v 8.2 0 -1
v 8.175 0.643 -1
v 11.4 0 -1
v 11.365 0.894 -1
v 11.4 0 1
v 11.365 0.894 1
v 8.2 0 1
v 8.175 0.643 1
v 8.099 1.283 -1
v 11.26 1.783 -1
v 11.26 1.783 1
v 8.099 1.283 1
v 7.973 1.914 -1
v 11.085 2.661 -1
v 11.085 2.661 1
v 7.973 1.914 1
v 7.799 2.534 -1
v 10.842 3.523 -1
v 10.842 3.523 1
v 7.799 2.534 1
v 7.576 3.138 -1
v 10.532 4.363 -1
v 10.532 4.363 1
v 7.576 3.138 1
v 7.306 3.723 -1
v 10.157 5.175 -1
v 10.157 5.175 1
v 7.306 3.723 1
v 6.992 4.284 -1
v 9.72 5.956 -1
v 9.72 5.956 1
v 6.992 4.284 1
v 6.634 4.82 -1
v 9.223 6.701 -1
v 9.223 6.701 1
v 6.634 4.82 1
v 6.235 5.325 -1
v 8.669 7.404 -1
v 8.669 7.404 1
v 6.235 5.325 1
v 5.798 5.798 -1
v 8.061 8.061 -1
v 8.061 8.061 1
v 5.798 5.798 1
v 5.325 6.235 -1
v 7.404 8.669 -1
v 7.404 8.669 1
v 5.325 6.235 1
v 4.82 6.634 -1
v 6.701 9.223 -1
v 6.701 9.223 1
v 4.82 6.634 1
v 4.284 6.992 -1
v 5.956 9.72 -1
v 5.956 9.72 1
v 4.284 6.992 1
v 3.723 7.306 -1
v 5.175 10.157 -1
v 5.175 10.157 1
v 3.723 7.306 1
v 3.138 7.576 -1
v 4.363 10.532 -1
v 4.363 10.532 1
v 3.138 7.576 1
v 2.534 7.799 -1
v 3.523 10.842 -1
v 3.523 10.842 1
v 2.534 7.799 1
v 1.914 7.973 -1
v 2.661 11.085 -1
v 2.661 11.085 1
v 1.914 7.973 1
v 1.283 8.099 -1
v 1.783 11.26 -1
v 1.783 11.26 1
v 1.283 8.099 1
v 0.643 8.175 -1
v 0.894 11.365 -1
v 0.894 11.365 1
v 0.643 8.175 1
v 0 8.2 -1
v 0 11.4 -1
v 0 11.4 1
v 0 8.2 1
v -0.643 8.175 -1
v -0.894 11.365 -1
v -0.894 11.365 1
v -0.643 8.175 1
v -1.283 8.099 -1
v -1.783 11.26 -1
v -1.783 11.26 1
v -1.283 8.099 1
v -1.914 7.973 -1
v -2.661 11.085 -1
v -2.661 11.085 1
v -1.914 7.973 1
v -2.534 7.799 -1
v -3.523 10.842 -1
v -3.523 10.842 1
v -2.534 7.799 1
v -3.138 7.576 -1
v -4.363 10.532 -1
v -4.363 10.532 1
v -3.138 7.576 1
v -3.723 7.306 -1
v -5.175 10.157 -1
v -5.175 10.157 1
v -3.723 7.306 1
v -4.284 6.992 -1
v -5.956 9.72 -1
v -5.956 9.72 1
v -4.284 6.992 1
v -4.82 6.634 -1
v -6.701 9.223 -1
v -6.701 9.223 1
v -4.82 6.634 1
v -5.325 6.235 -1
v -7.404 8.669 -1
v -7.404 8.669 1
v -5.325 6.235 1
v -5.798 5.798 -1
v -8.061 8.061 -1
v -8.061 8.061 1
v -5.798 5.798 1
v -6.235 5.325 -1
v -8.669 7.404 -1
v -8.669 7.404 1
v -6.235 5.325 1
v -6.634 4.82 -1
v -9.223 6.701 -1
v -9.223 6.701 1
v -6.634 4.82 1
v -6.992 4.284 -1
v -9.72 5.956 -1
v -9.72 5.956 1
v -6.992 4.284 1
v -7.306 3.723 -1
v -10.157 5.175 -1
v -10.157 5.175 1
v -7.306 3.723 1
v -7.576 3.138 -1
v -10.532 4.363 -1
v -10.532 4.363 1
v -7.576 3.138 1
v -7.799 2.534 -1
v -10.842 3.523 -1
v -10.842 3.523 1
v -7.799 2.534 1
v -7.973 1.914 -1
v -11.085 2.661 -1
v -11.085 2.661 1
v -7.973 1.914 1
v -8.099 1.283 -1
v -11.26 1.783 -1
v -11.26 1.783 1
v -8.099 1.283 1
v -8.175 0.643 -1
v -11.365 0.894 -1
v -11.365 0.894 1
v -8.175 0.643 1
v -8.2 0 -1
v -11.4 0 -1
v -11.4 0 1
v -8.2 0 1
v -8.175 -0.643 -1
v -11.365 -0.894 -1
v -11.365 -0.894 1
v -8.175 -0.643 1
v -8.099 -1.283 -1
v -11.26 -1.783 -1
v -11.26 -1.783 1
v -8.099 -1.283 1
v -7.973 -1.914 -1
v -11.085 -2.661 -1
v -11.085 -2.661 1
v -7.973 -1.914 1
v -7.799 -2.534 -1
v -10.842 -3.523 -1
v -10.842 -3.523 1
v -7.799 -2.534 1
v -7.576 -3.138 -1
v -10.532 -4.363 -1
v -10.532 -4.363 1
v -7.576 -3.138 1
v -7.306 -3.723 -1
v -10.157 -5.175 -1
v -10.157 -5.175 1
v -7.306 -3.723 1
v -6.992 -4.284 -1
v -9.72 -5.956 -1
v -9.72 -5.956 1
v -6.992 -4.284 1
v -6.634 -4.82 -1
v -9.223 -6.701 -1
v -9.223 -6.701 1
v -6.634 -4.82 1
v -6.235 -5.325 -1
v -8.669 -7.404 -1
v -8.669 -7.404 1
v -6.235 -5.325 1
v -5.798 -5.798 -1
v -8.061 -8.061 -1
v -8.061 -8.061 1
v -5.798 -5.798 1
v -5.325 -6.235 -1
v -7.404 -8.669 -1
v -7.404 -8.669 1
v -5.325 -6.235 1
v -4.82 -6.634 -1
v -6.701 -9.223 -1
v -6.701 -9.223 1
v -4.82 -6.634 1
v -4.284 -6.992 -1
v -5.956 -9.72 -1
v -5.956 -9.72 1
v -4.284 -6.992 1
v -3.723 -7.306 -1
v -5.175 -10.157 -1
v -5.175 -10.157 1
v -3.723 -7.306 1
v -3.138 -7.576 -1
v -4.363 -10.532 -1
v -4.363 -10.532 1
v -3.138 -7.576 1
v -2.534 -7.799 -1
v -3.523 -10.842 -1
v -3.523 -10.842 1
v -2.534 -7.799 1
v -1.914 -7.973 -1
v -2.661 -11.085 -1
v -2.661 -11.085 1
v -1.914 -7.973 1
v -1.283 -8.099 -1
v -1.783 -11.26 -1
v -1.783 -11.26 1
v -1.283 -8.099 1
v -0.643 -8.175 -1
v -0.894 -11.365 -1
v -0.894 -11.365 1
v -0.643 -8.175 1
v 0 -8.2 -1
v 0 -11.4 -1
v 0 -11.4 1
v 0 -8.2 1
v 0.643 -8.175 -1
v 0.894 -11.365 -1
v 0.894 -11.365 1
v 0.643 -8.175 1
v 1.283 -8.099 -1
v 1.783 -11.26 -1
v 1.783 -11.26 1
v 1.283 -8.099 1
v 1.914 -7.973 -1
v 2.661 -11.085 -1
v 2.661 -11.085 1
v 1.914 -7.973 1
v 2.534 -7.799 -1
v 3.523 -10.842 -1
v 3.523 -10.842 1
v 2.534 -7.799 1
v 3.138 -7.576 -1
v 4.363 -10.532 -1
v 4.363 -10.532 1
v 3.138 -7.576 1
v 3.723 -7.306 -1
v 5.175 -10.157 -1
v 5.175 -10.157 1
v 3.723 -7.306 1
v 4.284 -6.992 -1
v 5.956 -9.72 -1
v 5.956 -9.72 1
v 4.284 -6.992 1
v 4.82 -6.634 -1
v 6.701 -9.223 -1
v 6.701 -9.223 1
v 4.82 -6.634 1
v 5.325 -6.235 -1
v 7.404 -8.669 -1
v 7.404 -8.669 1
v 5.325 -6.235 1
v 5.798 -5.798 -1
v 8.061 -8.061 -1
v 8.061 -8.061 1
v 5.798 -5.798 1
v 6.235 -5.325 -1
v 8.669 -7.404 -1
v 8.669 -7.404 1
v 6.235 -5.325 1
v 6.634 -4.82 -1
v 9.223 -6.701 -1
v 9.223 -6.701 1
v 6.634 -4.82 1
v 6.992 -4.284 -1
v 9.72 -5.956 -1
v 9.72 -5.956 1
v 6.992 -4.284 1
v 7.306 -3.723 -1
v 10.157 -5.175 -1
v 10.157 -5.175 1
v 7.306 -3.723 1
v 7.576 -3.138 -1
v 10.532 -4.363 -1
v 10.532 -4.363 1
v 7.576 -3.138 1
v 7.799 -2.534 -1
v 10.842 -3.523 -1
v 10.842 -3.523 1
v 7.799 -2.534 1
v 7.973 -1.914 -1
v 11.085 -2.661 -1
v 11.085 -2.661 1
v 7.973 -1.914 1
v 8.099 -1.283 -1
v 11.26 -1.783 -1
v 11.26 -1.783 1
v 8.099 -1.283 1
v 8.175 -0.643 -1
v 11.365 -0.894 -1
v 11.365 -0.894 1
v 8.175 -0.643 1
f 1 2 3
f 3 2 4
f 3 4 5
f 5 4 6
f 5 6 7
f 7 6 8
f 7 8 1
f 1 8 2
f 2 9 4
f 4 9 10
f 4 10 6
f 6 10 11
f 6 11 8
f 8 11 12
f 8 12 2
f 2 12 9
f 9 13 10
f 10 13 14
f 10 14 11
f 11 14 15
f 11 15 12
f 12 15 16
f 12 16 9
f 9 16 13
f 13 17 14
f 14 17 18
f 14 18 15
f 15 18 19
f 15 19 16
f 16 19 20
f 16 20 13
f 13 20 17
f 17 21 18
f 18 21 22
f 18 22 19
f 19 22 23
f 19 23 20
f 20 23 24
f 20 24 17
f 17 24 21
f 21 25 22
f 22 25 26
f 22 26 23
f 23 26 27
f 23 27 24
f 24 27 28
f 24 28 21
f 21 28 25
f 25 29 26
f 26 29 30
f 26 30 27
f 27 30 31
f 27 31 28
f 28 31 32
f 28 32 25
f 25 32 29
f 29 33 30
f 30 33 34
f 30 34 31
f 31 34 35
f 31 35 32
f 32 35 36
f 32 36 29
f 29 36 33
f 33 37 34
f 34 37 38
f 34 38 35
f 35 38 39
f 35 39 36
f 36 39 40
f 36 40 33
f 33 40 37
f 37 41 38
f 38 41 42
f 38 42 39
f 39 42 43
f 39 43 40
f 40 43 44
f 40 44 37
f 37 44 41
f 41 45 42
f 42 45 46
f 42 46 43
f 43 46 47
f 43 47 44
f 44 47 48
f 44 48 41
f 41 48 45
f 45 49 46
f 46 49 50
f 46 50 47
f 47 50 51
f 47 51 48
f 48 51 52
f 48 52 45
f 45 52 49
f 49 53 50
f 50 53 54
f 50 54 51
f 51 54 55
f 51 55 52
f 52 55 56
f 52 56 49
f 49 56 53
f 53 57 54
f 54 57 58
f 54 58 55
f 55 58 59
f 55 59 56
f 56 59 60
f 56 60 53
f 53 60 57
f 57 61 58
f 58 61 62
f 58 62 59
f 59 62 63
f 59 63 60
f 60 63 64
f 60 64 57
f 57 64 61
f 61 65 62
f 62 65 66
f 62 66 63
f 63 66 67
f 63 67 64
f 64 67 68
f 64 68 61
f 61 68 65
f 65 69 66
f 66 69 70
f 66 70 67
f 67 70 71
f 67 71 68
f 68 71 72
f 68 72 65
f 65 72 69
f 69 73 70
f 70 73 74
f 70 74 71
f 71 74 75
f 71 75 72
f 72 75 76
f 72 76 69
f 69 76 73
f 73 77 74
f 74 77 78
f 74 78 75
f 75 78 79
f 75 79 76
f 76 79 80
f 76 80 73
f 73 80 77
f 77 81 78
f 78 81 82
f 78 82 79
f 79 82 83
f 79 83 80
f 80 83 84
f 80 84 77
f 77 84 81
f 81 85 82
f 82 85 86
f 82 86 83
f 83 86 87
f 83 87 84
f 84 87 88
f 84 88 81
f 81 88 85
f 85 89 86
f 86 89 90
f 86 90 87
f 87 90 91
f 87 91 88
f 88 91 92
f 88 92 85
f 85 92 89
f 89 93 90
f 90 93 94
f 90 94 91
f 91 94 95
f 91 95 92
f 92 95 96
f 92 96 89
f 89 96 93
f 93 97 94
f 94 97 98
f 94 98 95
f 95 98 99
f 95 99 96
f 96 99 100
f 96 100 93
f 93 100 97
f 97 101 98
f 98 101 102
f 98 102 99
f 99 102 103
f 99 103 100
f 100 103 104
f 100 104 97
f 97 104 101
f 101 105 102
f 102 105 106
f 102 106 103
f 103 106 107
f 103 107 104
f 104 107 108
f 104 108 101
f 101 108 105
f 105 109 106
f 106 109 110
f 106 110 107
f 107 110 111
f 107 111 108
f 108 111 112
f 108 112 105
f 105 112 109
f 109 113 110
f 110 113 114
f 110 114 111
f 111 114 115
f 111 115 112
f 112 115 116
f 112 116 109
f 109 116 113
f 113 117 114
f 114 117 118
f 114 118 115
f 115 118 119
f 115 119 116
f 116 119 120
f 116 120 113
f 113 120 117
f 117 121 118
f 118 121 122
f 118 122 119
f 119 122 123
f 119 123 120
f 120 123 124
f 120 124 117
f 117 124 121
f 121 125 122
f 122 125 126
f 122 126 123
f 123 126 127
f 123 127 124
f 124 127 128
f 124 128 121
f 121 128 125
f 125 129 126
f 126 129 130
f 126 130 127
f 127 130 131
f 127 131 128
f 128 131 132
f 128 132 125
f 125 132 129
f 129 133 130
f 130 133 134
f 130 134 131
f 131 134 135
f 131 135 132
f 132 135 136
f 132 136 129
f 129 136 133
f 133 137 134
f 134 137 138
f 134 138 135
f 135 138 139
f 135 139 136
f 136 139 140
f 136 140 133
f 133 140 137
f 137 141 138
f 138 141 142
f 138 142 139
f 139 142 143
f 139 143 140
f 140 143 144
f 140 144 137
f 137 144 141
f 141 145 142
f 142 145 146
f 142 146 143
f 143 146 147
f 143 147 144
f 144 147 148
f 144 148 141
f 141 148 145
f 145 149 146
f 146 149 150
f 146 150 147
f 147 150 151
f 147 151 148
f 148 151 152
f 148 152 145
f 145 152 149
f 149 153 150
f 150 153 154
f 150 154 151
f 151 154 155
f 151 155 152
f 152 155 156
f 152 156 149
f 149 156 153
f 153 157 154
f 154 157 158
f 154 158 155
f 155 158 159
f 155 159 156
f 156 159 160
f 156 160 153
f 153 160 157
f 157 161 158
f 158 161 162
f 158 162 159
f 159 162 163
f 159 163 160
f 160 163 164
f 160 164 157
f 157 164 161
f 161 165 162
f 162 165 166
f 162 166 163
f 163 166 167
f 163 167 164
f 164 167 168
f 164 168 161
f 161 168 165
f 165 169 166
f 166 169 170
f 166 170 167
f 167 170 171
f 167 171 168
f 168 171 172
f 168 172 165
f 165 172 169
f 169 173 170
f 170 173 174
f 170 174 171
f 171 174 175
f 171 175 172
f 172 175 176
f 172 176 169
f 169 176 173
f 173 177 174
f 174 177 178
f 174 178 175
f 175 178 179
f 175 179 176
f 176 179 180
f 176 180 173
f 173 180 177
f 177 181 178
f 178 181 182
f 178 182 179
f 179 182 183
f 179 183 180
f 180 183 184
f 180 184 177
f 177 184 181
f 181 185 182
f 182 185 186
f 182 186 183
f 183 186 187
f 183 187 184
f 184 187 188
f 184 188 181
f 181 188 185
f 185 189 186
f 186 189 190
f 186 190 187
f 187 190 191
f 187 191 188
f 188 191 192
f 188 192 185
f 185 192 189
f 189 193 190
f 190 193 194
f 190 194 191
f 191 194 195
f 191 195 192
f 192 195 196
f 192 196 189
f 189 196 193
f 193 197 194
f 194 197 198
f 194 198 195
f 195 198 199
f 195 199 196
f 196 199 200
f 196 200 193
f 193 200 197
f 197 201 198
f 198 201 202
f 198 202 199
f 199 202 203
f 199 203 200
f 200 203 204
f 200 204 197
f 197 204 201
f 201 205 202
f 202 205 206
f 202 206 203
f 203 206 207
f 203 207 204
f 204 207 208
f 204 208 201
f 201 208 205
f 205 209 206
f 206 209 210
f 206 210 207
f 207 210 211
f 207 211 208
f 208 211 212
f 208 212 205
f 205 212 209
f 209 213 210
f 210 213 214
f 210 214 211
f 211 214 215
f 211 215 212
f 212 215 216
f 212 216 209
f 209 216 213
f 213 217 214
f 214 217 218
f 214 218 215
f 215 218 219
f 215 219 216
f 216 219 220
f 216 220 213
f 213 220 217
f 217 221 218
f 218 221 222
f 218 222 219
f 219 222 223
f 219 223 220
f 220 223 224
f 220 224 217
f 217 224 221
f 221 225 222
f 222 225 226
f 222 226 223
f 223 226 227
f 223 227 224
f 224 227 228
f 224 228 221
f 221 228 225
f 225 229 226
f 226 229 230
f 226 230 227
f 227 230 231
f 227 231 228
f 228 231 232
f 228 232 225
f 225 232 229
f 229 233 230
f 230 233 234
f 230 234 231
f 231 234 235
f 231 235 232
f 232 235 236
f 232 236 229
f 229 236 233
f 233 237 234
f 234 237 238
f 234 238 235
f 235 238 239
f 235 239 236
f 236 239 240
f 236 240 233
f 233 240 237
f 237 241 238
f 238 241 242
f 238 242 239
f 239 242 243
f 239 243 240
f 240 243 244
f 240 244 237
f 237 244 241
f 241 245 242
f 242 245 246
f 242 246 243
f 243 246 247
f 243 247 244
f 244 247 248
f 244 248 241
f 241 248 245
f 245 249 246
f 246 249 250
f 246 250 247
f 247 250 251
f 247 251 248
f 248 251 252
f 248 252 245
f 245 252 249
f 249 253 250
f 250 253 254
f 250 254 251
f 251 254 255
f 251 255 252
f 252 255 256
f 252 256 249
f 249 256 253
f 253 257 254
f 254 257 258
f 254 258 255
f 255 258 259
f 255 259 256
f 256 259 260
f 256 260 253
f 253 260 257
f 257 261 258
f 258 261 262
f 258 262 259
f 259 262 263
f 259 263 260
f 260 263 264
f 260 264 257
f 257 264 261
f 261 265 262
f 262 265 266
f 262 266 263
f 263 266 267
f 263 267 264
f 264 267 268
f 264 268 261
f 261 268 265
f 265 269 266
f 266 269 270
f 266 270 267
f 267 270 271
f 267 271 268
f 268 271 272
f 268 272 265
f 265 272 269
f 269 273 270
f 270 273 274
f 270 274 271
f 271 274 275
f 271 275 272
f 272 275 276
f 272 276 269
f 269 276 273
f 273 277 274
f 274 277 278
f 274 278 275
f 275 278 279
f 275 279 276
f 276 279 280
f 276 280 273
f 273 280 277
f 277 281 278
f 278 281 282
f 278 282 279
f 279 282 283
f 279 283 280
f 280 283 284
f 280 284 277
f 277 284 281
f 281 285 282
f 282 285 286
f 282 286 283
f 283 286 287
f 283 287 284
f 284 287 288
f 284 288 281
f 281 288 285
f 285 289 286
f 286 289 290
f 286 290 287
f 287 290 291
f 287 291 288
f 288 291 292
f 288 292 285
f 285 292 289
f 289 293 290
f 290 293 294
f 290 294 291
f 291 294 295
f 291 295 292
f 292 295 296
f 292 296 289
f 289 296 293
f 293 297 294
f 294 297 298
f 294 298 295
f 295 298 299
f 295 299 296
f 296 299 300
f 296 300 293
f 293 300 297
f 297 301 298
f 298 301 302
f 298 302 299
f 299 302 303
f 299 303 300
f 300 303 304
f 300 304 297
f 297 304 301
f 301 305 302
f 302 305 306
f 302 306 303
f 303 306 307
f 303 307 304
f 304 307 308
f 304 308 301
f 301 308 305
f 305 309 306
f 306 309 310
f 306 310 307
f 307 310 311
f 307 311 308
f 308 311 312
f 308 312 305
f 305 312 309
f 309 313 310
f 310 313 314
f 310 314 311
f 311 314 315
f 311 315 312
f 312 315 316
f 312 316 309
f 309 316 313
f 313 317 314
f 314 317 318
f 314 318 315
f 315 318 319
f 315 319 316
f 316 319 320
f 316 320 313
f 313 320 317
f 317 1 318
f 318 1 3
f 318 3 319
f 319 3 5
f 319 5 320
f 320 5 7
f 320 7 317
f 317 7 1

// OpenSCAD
/*
Yamper V11 mesh source for yamper_v11_button_washer_optional.stl
Units: millimeters

This source keeps the restored V11 STL geometry as a plain OpenSCAD polyhedron.
It is not a new redesign. It exists so the CAD source, STL, and STEP exports stay together.
*/

module yamper_v11_button_washer_optional() {
    pts = [
        [8.2, 0, -1],
        [8.174722, 0.643365, -1],
        [11.4, 0, -1],
        [11.364858, 0.894434, -1],
        [11.4, 0, 1],
        [11.364858, 0.894434, 1],
        [8.2, 0, 1],
        [8.174722, 0.643365, 1],
        [8.099045, 1.282763, -1],
        [11.259647, 1.783353, -1],
        [11.259647, 1.783353, 1],
        [8.099045, 1.282763, 1],
        [7.973433, 1.914252, -1],
        [11.085017, 2.661277, -1],
        [11.085017, 2.661277, 1],
        [7.973433, 1.914252, 1],
        [7.798664, 2.533939, -1],
        [10.842044, 3.522794, -1],
        [10.842044, 3.522794, 1],
        [7.798664, 2.533939, 1],
        [7.575812, 3.138004, -1],
        [10.532227, 4.362591, -1],
        [10.532227, 4.362591, 1],
        [7.575812, 3.138004, 1],
        [7.306253, 3.722722, -1],
        [10.157475, 5.175492, -1],
        [10.157475, 5.175492, 1],
        [7.306253, 3.722722, 1],
        [6.991649, 4.284488, -1],
        [9.720098, 5.956484, -1],
        [9.720098, 5.956484, 1],
        [6.991649, 4.284488, 1],
        [6.633939, 4.819839, -1],
        [9.222794, 6.700752, -1],
        [9.222794, 6.700752, 1],
        [6.633939, 4.819839, 1],
        [6.235329, 5.325474, -1],
        [8.668628, 7.403708, -1],
        [8.668628, 7.403708, 1],
        [6.235329, 5.325474, 1],
        [5.798275, 5.798275, -1],
        [8.061017, 8.061017, -1],
        [8.061017, 8.061017, 1],
        [5.798275, 5.798275, 1],
        [5.325474, 6.235329, -1],
        [7.403708, 8.668628, -1],
        [7.403708, 8.668628, 1],
        [5.325474, 6.235329, 1],
        [4.819839, 6.633939, -1],
        [6.700752, 9.222794, -1],
        [6.700752, 9.222794, 1],
        [4.819839, 6.633939, 1],
        [4.284488, 6.991649, -1],
        [5.956484, 9.720098, -1],
        [5.956484, 9.720098, 1],
        [4.284488, 6.991649, 1],
        [3.722722, 7.306253, -1],
        [5.175492, 10.157475, -1],
        [5.175492, 10.157475, 1],
        [3.722722, 7.306253, 1],
        [3.138004, 7.575812, -1],
        [4.362591, 10.532227, -1],
        [4.362591, 10.532227, 1],
        [3.138004, 7.575812, 1],
        [2.533939, 7.798664, -1],
        [3.522794, 10.842044, -1],
        [3.522794, 10.842044, 1],
        [2.533939, 7.798664, 1],
        [1.914252, 7.973433, -1],
        [2.661277, 11.085017, -1],
        [2.661277, 11.085017, 1],
        [1.914252, 7.973433, 1],
        [1.282763, 8.099045, -1],
        [1.783353, 11.259647, -1],
        [1.783353, 11.259647, 1],
        [1.282763, 8.099045, 1],
        [0.643365, 8.174722, -1],
        [0.894434, 11.364858, -1],
        [0.894434, 11.364858, 1],
        [0.643365, 8.174722, 1],
        [0, 8.2, -1],
        [0, 11.4, -1],
        [0, 11.4, 1],
        [0, 8.2, 1],
        [-0.643365, 8.174722, -1],
        [-0.894434, 11.364858, -1],
        [-0.894434, 11.364858, 1],
        [-0.643365, 8.174722, 1],
        [-1.282763, 8.099045, -1],
        [-1.783353, 11.259647, -1],
        [-1.783353, 11.259647, 1],
        [-1.282763, 8.099045, 1],
        [-1.914252, 7.973433, -1],
        [-2.661277, 11.085017, -1],
        [-2.661277, 11.085017, 1],
        [-1.914252, 7.973433, 1],
        [-2.533939, 7.798664, -1],
        [-3.522794, 10.842044, -1],
        [-3.522794, 10.842044, 1],
        [-2.533939, 7.798664, 1],
        [-3.138004, 7.575812, -1],
        [-4.362591, 10.532227, -1],
        [-4.362591, 10.532227, 1],
        [-3.138004, 7.575812, 1],
        [-3.722722, 7.306253, -1],
        [-5.175492, 10.157475, -1],
        [-5.175492, 10.157475, 1],
        [-3.722722, 7.306253, 1],
        [-4.284488, 6.991649, -1],
        [-5.956484, 9.720098, -1],
        [-5.956484, 9.720098, 1],
        [-4.284488, 6.991649, 1],
        [-4.819839, 6.633939, -1],
        [-6.700752, 9.222794, -1],
        [-6.700752, 9.222794, 1],
        [-4.819839, 6.633939, 1],
        [-5.325474, 6.235329, -1],
        [-7.403708, 8.668628, -1],
        [-7.403708, 8.668628, 1],
        [-5.325474, 6.235329, 1],
        [-5.798275, 5.798275, -1],
        [-8.061017, 8.061017, -1],
        [-8.061017, 8.061017, 1],
        [-5.798275, 5.798275, 1],
        [-6.235329, 5.325474, -1],
        [-8.668628, 7.403708, -1],
        [-8.668628, 7.403708, 1],
        [-6.235329, 5.325474, 1],
        [-6.633939, 4.819839, -1],
        [-9.222794, 6.700752, -1],
        [-9.222794, 6.700752, 1],
        [-6.633939, 4.819839, 1],
        [-6.991649, 4.284488, -1],
        [-9.720098, 5.956484, -1],
        [-9.720098, 5.956484, 1],
        [-6.991649, 4.284488, 1],
        [-7.306253, 3.722722, -1],
        [-10.157475, 5.175492, -1],
        [-10.157475, 5.175492, 1],
        [-7.306253, 3.722722, 1],
        [-7.575812, 3.138004, -1],
        [-10.532227, 4.362591, -1],
        [-10.532227, 4.362591, 1],
        [-7.575812, 3.138004, 1],
        [-7.798664, 2.533939, -1],
        [-10.842044, 3.522794, -1],
        [-10.842044, 3.522794, 1],
        [-7.798664, 2.533939, 1],
        [-7.973433, 1.914252, -1],
        [-11.085017, 2.661277, -1],
        [-11.085017, 2.661277, 1],
        [-7.973433, 1.914252, 1],
        [-8.099045, 1.282763, -1],
        [-11.259647, 1.783353, -1],
        [-11.259647, 1.783353, 1],
        [-8.099045, 1.282763, 1],
        [-8.174722, 0.643365, -1],
        [-11.364858, 0.894434, -1],
        [-11.364858, 0.894434, 1],
        [-8.174722, 0.643365, 1],
        [-8.2, 0, -1],
        [-11.4, 0, -1],
        [-11.4, 0, 1],
        [-8.2, 0, 1],
        [-8.174722, -0.643365, -1],
        [-11.364858, -0.894434, -1],
        [-11.364858, -0.894434, 1],
        [-8.174722, -0.643365, 1],
        [-8.099045, -1.282763, -1],
        [-11.259647, -1.783353, -1],
        [-11.259647, -1.783353, 1],
        [-8.099045, -1.282763, 1],
        [-7.973433, -1.914252, -1],
        [-11.085017, -2.661277, -1],
        [-11.085017, -2.661277, 1],
        [-7.973433, -1.914252, 1],
        [-7.798664, -2.533939, -1],
        [-10.842044, -3.522794, -1],
        [-10.842044, -3.522794, 1],
        [-7.798664, -2.533939, 1],
        [-7.575812, -3.138004, -1],
        [-10.532227, -4.362591, -1],
        [-10.532227, -4.362591, 1],
        [-7.575812, -3.138004, 1],
        [-7.306253, -3.722722, -1],
        [-10.157475, -5.175492, -1],
        [-10.157475, -5.175492, 1],
        [-7.306253, -3.722722, 1],
        [-6.991649, -4.284488, -1],
        [-9.720098, -5.956484, -1],
        [-9.720098, -5.956484, 1],
        [-6.991649, -4.284488, 1],
        [-6.633939, -4.819839, -1],
        [-9.222794, -6.700752, -1],
        [-9.222794, -6.700752, 1],
        [-6.633939, -4.819839, 1],
        [-6.235329, -5.325474, -1],
        [-8.668628, -7.403708, -1],
        [-8.668628, -7.403708, 1],
        [-6.235329, -5.325474, 1],
        [-5.798275, -5.798275, -1],
        [-8.061017, -8.061017, -1],
        [-8.061017, -8.061017, 1],
        [-5.798275, -5.798275, 1],
        [-5.325474, -6.235329, -1],
        [-7.403708, -8.668628, -1],
        [-7.403708, -8.668628, 1],
        [-5.325474, -6.235329, 1],
        [-4.819839, -6.633939, -1],
        [-6.700752, -9.222794, -1],
        [-6.700752, -9.222794, 1],
        [-4.819839, -6.633939, 1],
        [-4.284488, -6.991649, -1],
        [-5.956484, -9.720098, -1],
        [-5.956484, -9.720098, 1],
        [-4.284488, -6.991649, 1],
        [-3.722722, -7.306253, -1],
        [-5.175492, -10.157475, -1],
        [-5.175492, -10.157475, 1],
        [-3.722722, -7.306253, 1],
        [-3.138004, -7.575812, -1],
        [-4.362591, -10.532227, -1],
        [-4.362591, -10.532227, 1],
        [-3.138004, -7.575812, 1],
        [-2.533939, -7.798664, -1],
        [-3.522794, -10.842044, -1],
        [-3.522794, -10.842044, 1],
        [-2.533939, -7.798664, 1],
        [-1.914252, -7.973433, -1],
        [-2.661277, -11.085017, -1],
        [-2.661277, -11.085017, 1],
        [-1.914252, -7.973433, 1],
        [-1.282763, -8.099045, -1],
        [-1.783353, -11.259647, -1],
        [-1.783353, -11.259647, 1],
        [-1.282763, -8.099045, 1],
        [-0.643365, -8.174722, -1],
        [-0.894434, -11.364858, -1],
        [-0.894434, -11.364858, 1],
        [-0.643365, -8.174722, 1],
        [0, -8.2, -1],
        [0, -11.4, -1],
        [0, -11.4, 1],
        [0, -8.2, 1],
        [0.643365, -8.174722, -1],
        [0.894434, -11.364858, -1],
        [0.894434, -11.364858, 1],
        [0.643365, -8.174722, 1],
        [1.282763, -8.099045, -1],
        [1.783353, -11.259647, -1],
        [1.783353, -11.259647, 1],
        [1.282763, -8.099045, 1],
        [1.914252, -7.973433, -1],
        [2.661277, -11.085017, -1],
        [2.661277, -11.085017, 1],
        [1.914252, -7.973433, 1],
        [2.533939, -7.798664, -1],
        [3.522794, -10.842044, -1],
        [3.522794, -10.842044, 1],
        [2.533939, -7.798664, 1],
        [3.138004, -7.575812, -1],
        [4.362591, -10.532227, -1],
        [4.362591, -10.532227, 1],
        [3.138004, -7.575812, 1],
        [3.722722, -7.306253, -1],
        [5.175492, -10.157475, -1],
        [5.175492, -10.157475, 1],
        [3.722722, -7.306253, 1],
        [4.284488, -6.991649, -1],
        [5.956484, -9.720098, -1],
        [5.956484, -9.720098, 1],
        [4.284488, -6.991649, 1],
        [4.819839, -6.633939, -1],
        [6.700752, -9.222794, -1],
        [6.700752, -9.222794, 1],
        [4.819839, -6.633939, 1],
        [5.325474, -6.235329, -1],
        [7.403708, -8.668628, -1],
        [7.403708, -8.668628, 1],
        [5.325474, -6.235329, 1],
        [5.798275, -5.798275, -1],
        [8.061017, -8.061017, -1],
        [8.061017, -8.061017, 1],
        [5.798275, -5.798275, 1],
        [6.235329, -5.325474, -1],
        [8.668628, -7.403708, -1],
        [8.668628, -7.403708, 1],
        [6.235329, -5.325474, 1],
        [6.633939, -4.819839, -1],
        [9.222794, -6.700752, -1],
        [9.222794, -6.700752, 1],
        [6.633939, -4.819839, 1],
        [6.991649, -4.284488, -1],
        [9.720098, -5.956484, -1],
        [9.720098, -5.956484, 1],
        [6.991649, -4.284488, 1],
        [7.306253, -3.722722, -1],
        [10.157475, -5.175492, -1],
        [10.157475, -5.175492, 1],
        [7.306253, -3.722722, 1],
        [7.575812, -3.138004, -1],
        [10.532227, -4.362591, -1],
        [10.532227, -4.362591, 1],
        [7.575812, -3.138004, 1],
        [7.798664, -2.533939, -1],
        [10.842044, -3.522794, -1],
        [10.842044, -3.522794, 1],
        [7.798664, -2.533939, 1],
        [7.973433, -1.914252, -1],
        [11.085017, -2.661277, -1],
        [11.085017, -2.661277, 1],
        [7.973433, -1.914252, 1],
        [8.099045, -1.282763, -1],
        [11.259647, -1.783353, -1],
        [11.259647, -1.783353, 1],
        [8.099045, -1.282763, 1],
        [8.174722, -0.643365, -1],
        [11.364858, -0.894434, -1],
        [11.364858, -0.894434, 1],
        [8.174722, -0.643365, 1],
    ];

    tris = [
        [0, 1, 2],
        [2, 1, 3],
        [2, 3, 4],
        [4, 3, 5],
        [4, 5, 6],
        [6, 5, 7],
        [6, 7, 0],
        [0, 7, 1],
        [1, 8, 3],
        [3, 8, 9],
        [3, 9, 5],
        [5, 9, 10],
        [5, 10, 7],
        [7, 10, 11],
        [7, 11, 1],
        [1, 11, 8],
        [8, 12, 9],
        [9, 12, 13],
        [9, 13, 10],
        [10, 13, 14],
        [10, 14, 11],
        [11, 14, 15],
        [11, 15, 8],
        [8, 15, 12],
        [12, 16, 13],
        [13, 16, 17],
        [13, 17, 14],
        [14, 17, 18],
        [14, 18, 15],
        [15, 18, 19],
        [15, 19, 12],
        [12, 19, 16],
        [16, 20, 17],
        [17, 20, 21],
        [17, 21, 18],
        [18, 21, 22],
        [18, 22, 19],
        [19, 22, 23],
        [19, 23, 16],
        [16, 23, 20],
        [20, 24, 21],
        [21, 24, 25],
        [21, 25, 22],
        [22, 25, 26],
        [22, 26, 23],
        [23, 26, 27],
        [23, 27, 20],
        [20, 27, 24],
        [24, 28, 25],
        [25, 28, 29],
        [25, 29, 26],
        [26, 29, 30],
        [26, 30, 27],
        [27, 30, 31],
        [27, 31, 24],
        [24, 31, 28],
        [28, 32, 29],
        [29, 32, 33],
        [29, 33, 30],
        [30, 33, 34],
        [30, 34, 31],
        [31, 34, 35],
        [31, 35, 28],
        [28, 35, 32],
        [32, 36, 33],
        [33, 36, 37],
        [33, 37, 34],
        [34, 37, 38],
        [34, 38, 35],
        [35, 38, 39],
        [35, 39, 32],
        [32, 39, 36],
        [36, 40, 37],
        [37, 40, 41],
        [37, 41, 38],
        [38, 41, 42],
        [38, 42, 39],
        [39, 42, 43],
        [39, 43, 36],
        [36, 43, 40],
        [40, 44, 41],
        [41, 44, 45],
        [41, 45, 42],
        [42, 45, 46],
        [42, 46, 43],
        [43, 46, 47],
        [43, 47, 40],
        [40, 47, 44],
        [44, 48, 45],
        [45, 48, 49],
        [45, 49, 46],
        [46, 49, 50],
        [46, 50, 47],
        [47, 50, 51],
        [47, 51, 44],
        [44, 51, 48],
        [48, 52, 49],
        [49, 52, 53],
        [49, 53, 50],
        [50, 53, 54],
        [50, 54, 51],
        [51, 54, 55],
        [51, 55, 48],
        [48, 55, 52],
        [52, 56, 53],
        [53, 56, 57],
        [53, 57, 54],
        [54, 57, 58],
        [54, 58, 55],
        [55, 58, 59],
        [55, 59, 52],
        [52, 59, 56],
        [56, 60, 57],
        [57, 60, 61],
        [57, 61, 58],
        [58, 61, 62],
        [58, 62, 59],
        [59, 62, 63],
        [59, 63, 56],
        [56, 63, 60],
        [60, 64, 61],
        [61, 64, 65],
        [61, 65, 62],
        [62, 65, 66],
        [62, 66, 63],
        [63, 66, 67],
        [63, 67, 60],
        [60, 67, 64],
        [64, 68, 65],
        [65, 68, 69],
        [65, 69, 66],
        [66, 69, 70],
        [66, 70, 67],
        [67, 70, 71],
        [67, 71, 64],
        [64, 71, 68],
        [68, 72, 69],
        [69, 72, 73],
        [69, 73, 70],
        [70, 73, 74],
        [70, 74, 71],
        [71, 74, 75],
        [71, 75, 68],
        [68, 75, 72],
        [72, 76, 73],
        [73, 76, 77],
        [73, 77, 74],
        [74, 77, 78],
        [74, 78, 75],
        [75, 78, 79],
        [75, 79, 72],
        [72, 79, 76],
        [76, 80, 77],
        [77, 80, 81],
        [77, 81, 78],
        [78, 81, 82],
        [78, 82, 79],
        [79, 82, 83],
        [79, 83, 76],
        [76, 83, 80],
        [80, 84, 81],
        [81, 84, 85],
        [81, 85, 82],
        [82, 85, 86],
        [82, 86, 83],
        [83, 86, 87],
        [83, 87, 80],
        [80, 87, 84],
        [84, 88, 85],
        [85, 88, 89],
        [85, 89, 86],
        [86, 89, 90],
        [86, 90, 87],
        [87, 90, 91],
        [87, 91, 84],
        [84, 91, 88],
        [88, 92, 89],
        [89, 92, 93],
        [89, 93, 90],
        [90, 93, 94],
        [90, 94, 91],
        [91, 94, 95],
        [91, 95, 88],
        [88, 95, 92],
        [92, 96, 93],
        [93, 96, 97],
        [93, 97, 94],
        [94, 97, 98],
        [94, 98, 95],
        [95, 98, 99],
        [95, 99, 92],
        [92, 99, 96],
        [96, 100, 97],
        [97, 100, 101],
        [97, 101, 98],
        [98, 101, 102],
        [98, 102, 99],
        [99, 102, 103],
        [99, 103, 96],
        [96, 103, 100],
        [100, 104, 101],
        [101, 104, 105],
        [101, 105, 102],
        [102, 105, 106],
        [102, 106, 103],
        [103, 106, 107],
        [103, 107, 100],
        [100, 107, 104],
        [104, 108, 105],
        [105, 108, 109],
        [105, 109, 106],
        [106, 109, 110],
        [106, 110, 107],
        [107, 110, 111],
        [107, 111, 104],
        [104, 111, 108],
        [108, 112, 109],
        [109, 112, 113],
        [109, 113, 110],
        [110, 113, 114],
        [110, 114, 111],
        [111, 114, 115],
        [111, 115, 108],
        [108, 115, 112],
        [112, 116, 113],
        [113, 116, 117],
        [113, 117, 114],
        [114, 117, 118],
        [114, 118, 115],
        [115, 118, 119],
        [115, 119, 112],
        [112, 119, 116],
        [116, 120, 117],
        [117, 120, 121],
        [117, 121, 118],
        [118, 121, 122],
        [118, 122, 119],
        [119, 122, 123],
        [119, 123, 116],
        [116, 123, 120],
        [120, 124, 121],
        [121, 124, 125],
        [121, 125, 122],
        [122, 125, 126],
        [122, 126, 123],
        [123, 126, 127],
        [123, 127, 120],
        [120, 127, 124],
        [124, 128, 125],
        [125, 128, 129],
        [125, 129, 126],
        [126, 129, 130],
        [126, 130, 127],
        [127, 130, 131],
        [127, 131, 124],
        [124, 131, 128],
        [128, 132, 129],
        [129, 132, 133],
        [129, 133, 130],
        [130, 133, 134],
        [130, 134, 131],
        [131, 134, 135],
        [131, 135, 128],
        [128, 135, 132],
        [132, 136, 133],
        [133, 136, 137],
        [133, 137, 134],
        [134, 137, 138],
        [134, 138, 135],
        [135, 138, 139],
        [135, 139, 132],
        [132, 139, 136],
        [136, 140, 137],
        [137, 140, 141],
        [137, 141, 138],
        [138, 141, 142],
        [138, 142, 139],
        [139, 142, 143],
        [139, 143, 136],
        [136, 143, 140],
        [140, 144, 141],
        [141, 144, 145],
        [141, 145, 142],
        [142, 145, 146],
        [142, 146, 143],
        [143, 146, 147],
        [143, 147, 140],
        [140, 147, 144],
        [144, 148, 145],
        [145, 148, 149],
        [145, 149, 146],
        [146, 149, 150],
        [146, 150, 147],
        [147, 150, 151],
        [147, 151, 144],
        [144, 151, 148],
        [148, 152, 149],
        [149, 152, 153],
        [149, 153, 150],
        [150, 153, 154],
        [150, 154, 151],
        [151, 154, 155],
        [151, 155, 148],
        [148, 155, 152],
        [152, 156, 153],
        [153, 156, 157],
        [153, 157, 154],
        [154, 157, 158],
        [154, 158, 155],
        [155, 158, 159],
        [155, 159, 152],
        [152, 159, 156],
        [156, 160, 157],
        [157, 160, 161],
        [157, 161, 158],
        [158, 161, 162],
        [158, 162, 159],
        [159, 162, 163],
        [159, 163, 156],
        [156, 163, 160],
        [160, 164, 161],
        [161, 164, 165],
        [161, 165, 162],
        [162, 165, 166],
        [162, 166, 163],
        [163, 166, 167],
        [163, 167, 160],
        [160, 167, 164],
        [164, 168, 165],
        [165, 168, 169],
        [165, 169, 166],
        [166, 169, 170],
        [166, 170, 167],
        [167, 170, 171],
        [167, 171, 164],
        [164, 171, 168],
        [168, 172, 169],
        [169, 172, 173],
        [169, 173, 170],
        [170, 173, 174],
        [170, 174, 171],
        [171, 174, 175],
        [171, 175, 168],
        [168, 175, 172],
        [172, 176, 173],
        [173, 176, 177],
        [173, 177, 174],
        [174, 177, 178],
        [174, 178, 175],
        [175, 178, 179],
        [175, 179, 172],
        [172, 179, 176],
        [176, 180, 177],
        [177, 180, 181],
        [177, 181, 178],
        [178, 181, 182],
        [178, 182, 179],
        [179, 182, 183],
        [179, 183, 176],
        [176, 183, 180],
        [180, 184, 181],
        [181, 184, 185],
        [181, 185, 182],
        [182, 185, 186],
        [182, 186, 183],
        [183, 186, 187],
        [183, 187, 180],
        [180, 187, 184],
        [184, 188, 185],
        [185, 188, 189],
        [185, 189, 186],
        [186, 189, 190],
        [186, 190, 187],
        [187, 190, 191],
        [187, 191, 184],
        [184, 191, 188],
        [188, 192, 189],
        [189, 192, 193],
        [189, 193, 190],
        [190, 193, 194],
        [190, 194, 191],
        [191, 194, 195],
        [191, 195, 188],
        [188, 195, 192],
        [192, 196, 193],
        [193, 196, 197],
        [193, 197, 194],
        [194, 197, 198],
        [194, 198, 195],
        [195, 198, 199],
        [195, 199, 192],
        [192, 199, 196],
        [196, 200, 197],
        [197, 200, 201],
        [197, 201, 198],
        [198, 201, 202],
        [198, 202, 199],
        [199, 202, 203],
        [199, 203, 196],
        [196, 203, 200],
        [200, 204, 201],
        [201, 204, 205],
        [201, 205, 202],
        [202, 205, 206],
        [202, 206, 203],
        [203, 206, 207],
        [203, 207, 200],
        [200, 207, 204],
        [204, 208, 205],
        [205, 208, 209],
        [205, 209, 206],
        [206, 209, 210],
        [206, 210, 207],
        [207, 210, 211],
        [207, 211, 204],
        [204, 211, 208],
        [208, 212, 209],
        [209, 212, 213],
        [209, 213, 210],
        [210, 213, 214],
        [210, 214, 211],
        [211, 214, 215],
        [211, 215, 208],
        [208, 215, 212],
        [212, 216, 213],
        [213, 216, 217],
        [213, 217, 214],
        [214, 217, 218],
        [214, 218, 215],
        [215, 218, 219],
        [215, 219, 212],
        [212, 219, 216],
        [216, 220, 217],
        [217, 220, 221],
        [217, 221, 218],
        [218, 221, 222],
        [218, 222, 219],
        [219, 222, 223],
        [219, 223, 216],
        [216, 223, 220],
        [220, 224, 221],
        [221, 224, 225],
        [221, 225, 222],
        [222, 225, 226],
        [222, 226, 223],
        [223, 226, 227],
        [223, 227, 220],
        [220, 227, 224],
        [224, 228, 225],
        [225, 228, 229],
        [225, 229, 226],
        [226, 229, 230],
        [226, 230, 227],
        [227, 230, 231],
        [227, 231, 224],
        [224, 231, 228],
        [228, 232, 229],
        [229, 232, 233],
        [229, 233, 230],
        [230, 233, 234],
        [230, 234, 231],
        [231, 234, 235],
        [231, 235, 228],
        [228, 235, 232],
        [232, 236, 233],
        [233, 236, 237],
        [233, 237, 234],
        [234, 237, 238],
        [234, 238, 235],
        [235, 238, 239],
        [235, 239, 232],
        [232, 239, 236],
        [236, 240, 237],
        [237, 240, 241],
        [237, 241, 238],
        [238, 241, 242],
        [238, 242, 239],
        [239, 242, 243],
        [239, 243, 236],
        [236, 243, 240],
        [240, 244, 241],
        [241, 244, 245],
        [241, 245, 242],
        [242, 245, 246],
        [242, 246, 243],
        [243, 246, 247],
        [243, 247, 240],
        [240, 247, 244],
        [244, 248, 245],
        [245, 248, 249],
        [245, 249, 246],
        [246, 249, 250],
        [246, 250, 247],
        [247, 250, 251],
        [247, 251, 244],
        [244, 251, 248],
        [248, 252, 249],
        [249, 252, 253],
        [249, 253, 250],
        [250, 253, 254],
        [250, 254, 251],
        [251, 254, 255],
        [251, 255, 248],
        [248, 255, 252],
        [252, 256, 253],
        [253, 256, 257],
        [253, 257, 254],
        [254, 257, 258],
        [254, 258, 255],
        [255, 258, 259],
        [255, 259, 252],
        [252, 259, 256],
        [256, 260, 257],
        [257, 260, 261],
        [257, 261, 258],
        [258, 261, 262],
        [258, 262, 259],
        [259, 262, 263],
        [259, 263, 256],
        [256, 263, 260],
        [260, 264, 261],
        [261, 264, 265],
        [261, 265, 262],
        [262, 265, 266],
        [262, 266, 263],
        [263, 266, 267],
        [263, 267, 260],
        [260, 267, 264],
        [264, 268, 265],
        [265, 268, 269],
        [265, 269, 266],
        [266, 269, 270],
        [266, 270, 267],
        [267, 270, 271],
        [267, 271, 264],
        [264, 271, 268],
        [268, 272, 269],
        [269, 272, 273],
        [269, 273, 270],
        [270, 273, 274],
        [270, 274, 271],
        [271, 274, 275],
        [271, 275, 268],
        [268, 275, 272],
        [272, 276, 273],
        [273, 276, 277],
        [273, 277, 274],
        [274, 277, 278],
        [274, 278, 275],
        [275, 278, 279],
        [275, 279, 272],
        [272, 279, 276],
        [276, 280, 277],
        [277, 280, 281],
        [277, 281, 278],
        [278, 281, 282],
        [278, 282, 279],
        [279, 282, 283],
        [279, 283, 276],
        [276, 283, 280],
        [280, 284, 281],
        [281, 284, 285],
        [281, 285, 282],
        [282, 285, 286],
        [282, 286, 283],
        [283, 286, 287],
        [283, 287, 280],
        [280, 287, 284],
        [284, 288, 285],
        [285, 288, 289],
        [285, 289, 286],
        [286, 289, 290],
        [286, 290, 287],
        [287, 290, 291],
        [287, 291, 284],
        [284, 291, 288],
        [288, 292, 289],
        [289, 292, 293],
        [289, 293, 290],
        [290, 293, 294],
        [290, 294, 291],
        [291, 294, 295],
        [291, 295, 288],
        [288, 295, 292],
        [292, 296, 293],
        [293, 296, 297],
        [293, 297, 294],
        [294, 297, 298],
        [294, 298, 295],
        [295, 298, 299],
        [295, 299, 292],
        [292, 299, 296],
        [296, 300, 297],
        [297, 300, 301],
        [297, 301, 298],
        [298, 301, 302],
        [298, 302, 299],
        [299, 302, 303],
        [299, 303, 296],
        [296, 303, 300],
        [300, 304, 301],
        [301, 304, 305],
        [301, 305, 302],
        [302, 305, 306],
        [302, 306, 303],
        [303, 306, 307],
        [303, 307, 300],
        [300, 307, 304],
        [304, 308, 305],
        [305, 308, 309],
        [305, 309, 306],
        [306, 309, 310],
        [306, 310, 307],
        [307, 310, 311],
        [307, 311, 304],
        [304, 311, 308],
        [308, 312, 309],
        [309, 312, 313],
        [309, 313, 310],
        [310, 313, 314],
        [310, 314, 311],
        [311, 314, 315],
        [311, 315, 308],
        [308, 315, 312],
        [312, 316, 313],
        [313, 316, 317],
        [313, 317, 314],
        [314, 317, 318],
        [314, 318, 315],
        [315, 318, 319],
        [315, 319, 312],
        [312, 319, 316],
        [316, 0, 317],
        [317, 0, 2],
        [317, 2, 318],
        [318, 2, 4],
        [318, 4, 319],
        [319, 4, 6],
        [319, 6, 316],
        [316, 6, 0],
    ];

    polyhedron(points = pts, faces = tris, convexity = 10);
}

yamper_v11_button_washer_optional();
